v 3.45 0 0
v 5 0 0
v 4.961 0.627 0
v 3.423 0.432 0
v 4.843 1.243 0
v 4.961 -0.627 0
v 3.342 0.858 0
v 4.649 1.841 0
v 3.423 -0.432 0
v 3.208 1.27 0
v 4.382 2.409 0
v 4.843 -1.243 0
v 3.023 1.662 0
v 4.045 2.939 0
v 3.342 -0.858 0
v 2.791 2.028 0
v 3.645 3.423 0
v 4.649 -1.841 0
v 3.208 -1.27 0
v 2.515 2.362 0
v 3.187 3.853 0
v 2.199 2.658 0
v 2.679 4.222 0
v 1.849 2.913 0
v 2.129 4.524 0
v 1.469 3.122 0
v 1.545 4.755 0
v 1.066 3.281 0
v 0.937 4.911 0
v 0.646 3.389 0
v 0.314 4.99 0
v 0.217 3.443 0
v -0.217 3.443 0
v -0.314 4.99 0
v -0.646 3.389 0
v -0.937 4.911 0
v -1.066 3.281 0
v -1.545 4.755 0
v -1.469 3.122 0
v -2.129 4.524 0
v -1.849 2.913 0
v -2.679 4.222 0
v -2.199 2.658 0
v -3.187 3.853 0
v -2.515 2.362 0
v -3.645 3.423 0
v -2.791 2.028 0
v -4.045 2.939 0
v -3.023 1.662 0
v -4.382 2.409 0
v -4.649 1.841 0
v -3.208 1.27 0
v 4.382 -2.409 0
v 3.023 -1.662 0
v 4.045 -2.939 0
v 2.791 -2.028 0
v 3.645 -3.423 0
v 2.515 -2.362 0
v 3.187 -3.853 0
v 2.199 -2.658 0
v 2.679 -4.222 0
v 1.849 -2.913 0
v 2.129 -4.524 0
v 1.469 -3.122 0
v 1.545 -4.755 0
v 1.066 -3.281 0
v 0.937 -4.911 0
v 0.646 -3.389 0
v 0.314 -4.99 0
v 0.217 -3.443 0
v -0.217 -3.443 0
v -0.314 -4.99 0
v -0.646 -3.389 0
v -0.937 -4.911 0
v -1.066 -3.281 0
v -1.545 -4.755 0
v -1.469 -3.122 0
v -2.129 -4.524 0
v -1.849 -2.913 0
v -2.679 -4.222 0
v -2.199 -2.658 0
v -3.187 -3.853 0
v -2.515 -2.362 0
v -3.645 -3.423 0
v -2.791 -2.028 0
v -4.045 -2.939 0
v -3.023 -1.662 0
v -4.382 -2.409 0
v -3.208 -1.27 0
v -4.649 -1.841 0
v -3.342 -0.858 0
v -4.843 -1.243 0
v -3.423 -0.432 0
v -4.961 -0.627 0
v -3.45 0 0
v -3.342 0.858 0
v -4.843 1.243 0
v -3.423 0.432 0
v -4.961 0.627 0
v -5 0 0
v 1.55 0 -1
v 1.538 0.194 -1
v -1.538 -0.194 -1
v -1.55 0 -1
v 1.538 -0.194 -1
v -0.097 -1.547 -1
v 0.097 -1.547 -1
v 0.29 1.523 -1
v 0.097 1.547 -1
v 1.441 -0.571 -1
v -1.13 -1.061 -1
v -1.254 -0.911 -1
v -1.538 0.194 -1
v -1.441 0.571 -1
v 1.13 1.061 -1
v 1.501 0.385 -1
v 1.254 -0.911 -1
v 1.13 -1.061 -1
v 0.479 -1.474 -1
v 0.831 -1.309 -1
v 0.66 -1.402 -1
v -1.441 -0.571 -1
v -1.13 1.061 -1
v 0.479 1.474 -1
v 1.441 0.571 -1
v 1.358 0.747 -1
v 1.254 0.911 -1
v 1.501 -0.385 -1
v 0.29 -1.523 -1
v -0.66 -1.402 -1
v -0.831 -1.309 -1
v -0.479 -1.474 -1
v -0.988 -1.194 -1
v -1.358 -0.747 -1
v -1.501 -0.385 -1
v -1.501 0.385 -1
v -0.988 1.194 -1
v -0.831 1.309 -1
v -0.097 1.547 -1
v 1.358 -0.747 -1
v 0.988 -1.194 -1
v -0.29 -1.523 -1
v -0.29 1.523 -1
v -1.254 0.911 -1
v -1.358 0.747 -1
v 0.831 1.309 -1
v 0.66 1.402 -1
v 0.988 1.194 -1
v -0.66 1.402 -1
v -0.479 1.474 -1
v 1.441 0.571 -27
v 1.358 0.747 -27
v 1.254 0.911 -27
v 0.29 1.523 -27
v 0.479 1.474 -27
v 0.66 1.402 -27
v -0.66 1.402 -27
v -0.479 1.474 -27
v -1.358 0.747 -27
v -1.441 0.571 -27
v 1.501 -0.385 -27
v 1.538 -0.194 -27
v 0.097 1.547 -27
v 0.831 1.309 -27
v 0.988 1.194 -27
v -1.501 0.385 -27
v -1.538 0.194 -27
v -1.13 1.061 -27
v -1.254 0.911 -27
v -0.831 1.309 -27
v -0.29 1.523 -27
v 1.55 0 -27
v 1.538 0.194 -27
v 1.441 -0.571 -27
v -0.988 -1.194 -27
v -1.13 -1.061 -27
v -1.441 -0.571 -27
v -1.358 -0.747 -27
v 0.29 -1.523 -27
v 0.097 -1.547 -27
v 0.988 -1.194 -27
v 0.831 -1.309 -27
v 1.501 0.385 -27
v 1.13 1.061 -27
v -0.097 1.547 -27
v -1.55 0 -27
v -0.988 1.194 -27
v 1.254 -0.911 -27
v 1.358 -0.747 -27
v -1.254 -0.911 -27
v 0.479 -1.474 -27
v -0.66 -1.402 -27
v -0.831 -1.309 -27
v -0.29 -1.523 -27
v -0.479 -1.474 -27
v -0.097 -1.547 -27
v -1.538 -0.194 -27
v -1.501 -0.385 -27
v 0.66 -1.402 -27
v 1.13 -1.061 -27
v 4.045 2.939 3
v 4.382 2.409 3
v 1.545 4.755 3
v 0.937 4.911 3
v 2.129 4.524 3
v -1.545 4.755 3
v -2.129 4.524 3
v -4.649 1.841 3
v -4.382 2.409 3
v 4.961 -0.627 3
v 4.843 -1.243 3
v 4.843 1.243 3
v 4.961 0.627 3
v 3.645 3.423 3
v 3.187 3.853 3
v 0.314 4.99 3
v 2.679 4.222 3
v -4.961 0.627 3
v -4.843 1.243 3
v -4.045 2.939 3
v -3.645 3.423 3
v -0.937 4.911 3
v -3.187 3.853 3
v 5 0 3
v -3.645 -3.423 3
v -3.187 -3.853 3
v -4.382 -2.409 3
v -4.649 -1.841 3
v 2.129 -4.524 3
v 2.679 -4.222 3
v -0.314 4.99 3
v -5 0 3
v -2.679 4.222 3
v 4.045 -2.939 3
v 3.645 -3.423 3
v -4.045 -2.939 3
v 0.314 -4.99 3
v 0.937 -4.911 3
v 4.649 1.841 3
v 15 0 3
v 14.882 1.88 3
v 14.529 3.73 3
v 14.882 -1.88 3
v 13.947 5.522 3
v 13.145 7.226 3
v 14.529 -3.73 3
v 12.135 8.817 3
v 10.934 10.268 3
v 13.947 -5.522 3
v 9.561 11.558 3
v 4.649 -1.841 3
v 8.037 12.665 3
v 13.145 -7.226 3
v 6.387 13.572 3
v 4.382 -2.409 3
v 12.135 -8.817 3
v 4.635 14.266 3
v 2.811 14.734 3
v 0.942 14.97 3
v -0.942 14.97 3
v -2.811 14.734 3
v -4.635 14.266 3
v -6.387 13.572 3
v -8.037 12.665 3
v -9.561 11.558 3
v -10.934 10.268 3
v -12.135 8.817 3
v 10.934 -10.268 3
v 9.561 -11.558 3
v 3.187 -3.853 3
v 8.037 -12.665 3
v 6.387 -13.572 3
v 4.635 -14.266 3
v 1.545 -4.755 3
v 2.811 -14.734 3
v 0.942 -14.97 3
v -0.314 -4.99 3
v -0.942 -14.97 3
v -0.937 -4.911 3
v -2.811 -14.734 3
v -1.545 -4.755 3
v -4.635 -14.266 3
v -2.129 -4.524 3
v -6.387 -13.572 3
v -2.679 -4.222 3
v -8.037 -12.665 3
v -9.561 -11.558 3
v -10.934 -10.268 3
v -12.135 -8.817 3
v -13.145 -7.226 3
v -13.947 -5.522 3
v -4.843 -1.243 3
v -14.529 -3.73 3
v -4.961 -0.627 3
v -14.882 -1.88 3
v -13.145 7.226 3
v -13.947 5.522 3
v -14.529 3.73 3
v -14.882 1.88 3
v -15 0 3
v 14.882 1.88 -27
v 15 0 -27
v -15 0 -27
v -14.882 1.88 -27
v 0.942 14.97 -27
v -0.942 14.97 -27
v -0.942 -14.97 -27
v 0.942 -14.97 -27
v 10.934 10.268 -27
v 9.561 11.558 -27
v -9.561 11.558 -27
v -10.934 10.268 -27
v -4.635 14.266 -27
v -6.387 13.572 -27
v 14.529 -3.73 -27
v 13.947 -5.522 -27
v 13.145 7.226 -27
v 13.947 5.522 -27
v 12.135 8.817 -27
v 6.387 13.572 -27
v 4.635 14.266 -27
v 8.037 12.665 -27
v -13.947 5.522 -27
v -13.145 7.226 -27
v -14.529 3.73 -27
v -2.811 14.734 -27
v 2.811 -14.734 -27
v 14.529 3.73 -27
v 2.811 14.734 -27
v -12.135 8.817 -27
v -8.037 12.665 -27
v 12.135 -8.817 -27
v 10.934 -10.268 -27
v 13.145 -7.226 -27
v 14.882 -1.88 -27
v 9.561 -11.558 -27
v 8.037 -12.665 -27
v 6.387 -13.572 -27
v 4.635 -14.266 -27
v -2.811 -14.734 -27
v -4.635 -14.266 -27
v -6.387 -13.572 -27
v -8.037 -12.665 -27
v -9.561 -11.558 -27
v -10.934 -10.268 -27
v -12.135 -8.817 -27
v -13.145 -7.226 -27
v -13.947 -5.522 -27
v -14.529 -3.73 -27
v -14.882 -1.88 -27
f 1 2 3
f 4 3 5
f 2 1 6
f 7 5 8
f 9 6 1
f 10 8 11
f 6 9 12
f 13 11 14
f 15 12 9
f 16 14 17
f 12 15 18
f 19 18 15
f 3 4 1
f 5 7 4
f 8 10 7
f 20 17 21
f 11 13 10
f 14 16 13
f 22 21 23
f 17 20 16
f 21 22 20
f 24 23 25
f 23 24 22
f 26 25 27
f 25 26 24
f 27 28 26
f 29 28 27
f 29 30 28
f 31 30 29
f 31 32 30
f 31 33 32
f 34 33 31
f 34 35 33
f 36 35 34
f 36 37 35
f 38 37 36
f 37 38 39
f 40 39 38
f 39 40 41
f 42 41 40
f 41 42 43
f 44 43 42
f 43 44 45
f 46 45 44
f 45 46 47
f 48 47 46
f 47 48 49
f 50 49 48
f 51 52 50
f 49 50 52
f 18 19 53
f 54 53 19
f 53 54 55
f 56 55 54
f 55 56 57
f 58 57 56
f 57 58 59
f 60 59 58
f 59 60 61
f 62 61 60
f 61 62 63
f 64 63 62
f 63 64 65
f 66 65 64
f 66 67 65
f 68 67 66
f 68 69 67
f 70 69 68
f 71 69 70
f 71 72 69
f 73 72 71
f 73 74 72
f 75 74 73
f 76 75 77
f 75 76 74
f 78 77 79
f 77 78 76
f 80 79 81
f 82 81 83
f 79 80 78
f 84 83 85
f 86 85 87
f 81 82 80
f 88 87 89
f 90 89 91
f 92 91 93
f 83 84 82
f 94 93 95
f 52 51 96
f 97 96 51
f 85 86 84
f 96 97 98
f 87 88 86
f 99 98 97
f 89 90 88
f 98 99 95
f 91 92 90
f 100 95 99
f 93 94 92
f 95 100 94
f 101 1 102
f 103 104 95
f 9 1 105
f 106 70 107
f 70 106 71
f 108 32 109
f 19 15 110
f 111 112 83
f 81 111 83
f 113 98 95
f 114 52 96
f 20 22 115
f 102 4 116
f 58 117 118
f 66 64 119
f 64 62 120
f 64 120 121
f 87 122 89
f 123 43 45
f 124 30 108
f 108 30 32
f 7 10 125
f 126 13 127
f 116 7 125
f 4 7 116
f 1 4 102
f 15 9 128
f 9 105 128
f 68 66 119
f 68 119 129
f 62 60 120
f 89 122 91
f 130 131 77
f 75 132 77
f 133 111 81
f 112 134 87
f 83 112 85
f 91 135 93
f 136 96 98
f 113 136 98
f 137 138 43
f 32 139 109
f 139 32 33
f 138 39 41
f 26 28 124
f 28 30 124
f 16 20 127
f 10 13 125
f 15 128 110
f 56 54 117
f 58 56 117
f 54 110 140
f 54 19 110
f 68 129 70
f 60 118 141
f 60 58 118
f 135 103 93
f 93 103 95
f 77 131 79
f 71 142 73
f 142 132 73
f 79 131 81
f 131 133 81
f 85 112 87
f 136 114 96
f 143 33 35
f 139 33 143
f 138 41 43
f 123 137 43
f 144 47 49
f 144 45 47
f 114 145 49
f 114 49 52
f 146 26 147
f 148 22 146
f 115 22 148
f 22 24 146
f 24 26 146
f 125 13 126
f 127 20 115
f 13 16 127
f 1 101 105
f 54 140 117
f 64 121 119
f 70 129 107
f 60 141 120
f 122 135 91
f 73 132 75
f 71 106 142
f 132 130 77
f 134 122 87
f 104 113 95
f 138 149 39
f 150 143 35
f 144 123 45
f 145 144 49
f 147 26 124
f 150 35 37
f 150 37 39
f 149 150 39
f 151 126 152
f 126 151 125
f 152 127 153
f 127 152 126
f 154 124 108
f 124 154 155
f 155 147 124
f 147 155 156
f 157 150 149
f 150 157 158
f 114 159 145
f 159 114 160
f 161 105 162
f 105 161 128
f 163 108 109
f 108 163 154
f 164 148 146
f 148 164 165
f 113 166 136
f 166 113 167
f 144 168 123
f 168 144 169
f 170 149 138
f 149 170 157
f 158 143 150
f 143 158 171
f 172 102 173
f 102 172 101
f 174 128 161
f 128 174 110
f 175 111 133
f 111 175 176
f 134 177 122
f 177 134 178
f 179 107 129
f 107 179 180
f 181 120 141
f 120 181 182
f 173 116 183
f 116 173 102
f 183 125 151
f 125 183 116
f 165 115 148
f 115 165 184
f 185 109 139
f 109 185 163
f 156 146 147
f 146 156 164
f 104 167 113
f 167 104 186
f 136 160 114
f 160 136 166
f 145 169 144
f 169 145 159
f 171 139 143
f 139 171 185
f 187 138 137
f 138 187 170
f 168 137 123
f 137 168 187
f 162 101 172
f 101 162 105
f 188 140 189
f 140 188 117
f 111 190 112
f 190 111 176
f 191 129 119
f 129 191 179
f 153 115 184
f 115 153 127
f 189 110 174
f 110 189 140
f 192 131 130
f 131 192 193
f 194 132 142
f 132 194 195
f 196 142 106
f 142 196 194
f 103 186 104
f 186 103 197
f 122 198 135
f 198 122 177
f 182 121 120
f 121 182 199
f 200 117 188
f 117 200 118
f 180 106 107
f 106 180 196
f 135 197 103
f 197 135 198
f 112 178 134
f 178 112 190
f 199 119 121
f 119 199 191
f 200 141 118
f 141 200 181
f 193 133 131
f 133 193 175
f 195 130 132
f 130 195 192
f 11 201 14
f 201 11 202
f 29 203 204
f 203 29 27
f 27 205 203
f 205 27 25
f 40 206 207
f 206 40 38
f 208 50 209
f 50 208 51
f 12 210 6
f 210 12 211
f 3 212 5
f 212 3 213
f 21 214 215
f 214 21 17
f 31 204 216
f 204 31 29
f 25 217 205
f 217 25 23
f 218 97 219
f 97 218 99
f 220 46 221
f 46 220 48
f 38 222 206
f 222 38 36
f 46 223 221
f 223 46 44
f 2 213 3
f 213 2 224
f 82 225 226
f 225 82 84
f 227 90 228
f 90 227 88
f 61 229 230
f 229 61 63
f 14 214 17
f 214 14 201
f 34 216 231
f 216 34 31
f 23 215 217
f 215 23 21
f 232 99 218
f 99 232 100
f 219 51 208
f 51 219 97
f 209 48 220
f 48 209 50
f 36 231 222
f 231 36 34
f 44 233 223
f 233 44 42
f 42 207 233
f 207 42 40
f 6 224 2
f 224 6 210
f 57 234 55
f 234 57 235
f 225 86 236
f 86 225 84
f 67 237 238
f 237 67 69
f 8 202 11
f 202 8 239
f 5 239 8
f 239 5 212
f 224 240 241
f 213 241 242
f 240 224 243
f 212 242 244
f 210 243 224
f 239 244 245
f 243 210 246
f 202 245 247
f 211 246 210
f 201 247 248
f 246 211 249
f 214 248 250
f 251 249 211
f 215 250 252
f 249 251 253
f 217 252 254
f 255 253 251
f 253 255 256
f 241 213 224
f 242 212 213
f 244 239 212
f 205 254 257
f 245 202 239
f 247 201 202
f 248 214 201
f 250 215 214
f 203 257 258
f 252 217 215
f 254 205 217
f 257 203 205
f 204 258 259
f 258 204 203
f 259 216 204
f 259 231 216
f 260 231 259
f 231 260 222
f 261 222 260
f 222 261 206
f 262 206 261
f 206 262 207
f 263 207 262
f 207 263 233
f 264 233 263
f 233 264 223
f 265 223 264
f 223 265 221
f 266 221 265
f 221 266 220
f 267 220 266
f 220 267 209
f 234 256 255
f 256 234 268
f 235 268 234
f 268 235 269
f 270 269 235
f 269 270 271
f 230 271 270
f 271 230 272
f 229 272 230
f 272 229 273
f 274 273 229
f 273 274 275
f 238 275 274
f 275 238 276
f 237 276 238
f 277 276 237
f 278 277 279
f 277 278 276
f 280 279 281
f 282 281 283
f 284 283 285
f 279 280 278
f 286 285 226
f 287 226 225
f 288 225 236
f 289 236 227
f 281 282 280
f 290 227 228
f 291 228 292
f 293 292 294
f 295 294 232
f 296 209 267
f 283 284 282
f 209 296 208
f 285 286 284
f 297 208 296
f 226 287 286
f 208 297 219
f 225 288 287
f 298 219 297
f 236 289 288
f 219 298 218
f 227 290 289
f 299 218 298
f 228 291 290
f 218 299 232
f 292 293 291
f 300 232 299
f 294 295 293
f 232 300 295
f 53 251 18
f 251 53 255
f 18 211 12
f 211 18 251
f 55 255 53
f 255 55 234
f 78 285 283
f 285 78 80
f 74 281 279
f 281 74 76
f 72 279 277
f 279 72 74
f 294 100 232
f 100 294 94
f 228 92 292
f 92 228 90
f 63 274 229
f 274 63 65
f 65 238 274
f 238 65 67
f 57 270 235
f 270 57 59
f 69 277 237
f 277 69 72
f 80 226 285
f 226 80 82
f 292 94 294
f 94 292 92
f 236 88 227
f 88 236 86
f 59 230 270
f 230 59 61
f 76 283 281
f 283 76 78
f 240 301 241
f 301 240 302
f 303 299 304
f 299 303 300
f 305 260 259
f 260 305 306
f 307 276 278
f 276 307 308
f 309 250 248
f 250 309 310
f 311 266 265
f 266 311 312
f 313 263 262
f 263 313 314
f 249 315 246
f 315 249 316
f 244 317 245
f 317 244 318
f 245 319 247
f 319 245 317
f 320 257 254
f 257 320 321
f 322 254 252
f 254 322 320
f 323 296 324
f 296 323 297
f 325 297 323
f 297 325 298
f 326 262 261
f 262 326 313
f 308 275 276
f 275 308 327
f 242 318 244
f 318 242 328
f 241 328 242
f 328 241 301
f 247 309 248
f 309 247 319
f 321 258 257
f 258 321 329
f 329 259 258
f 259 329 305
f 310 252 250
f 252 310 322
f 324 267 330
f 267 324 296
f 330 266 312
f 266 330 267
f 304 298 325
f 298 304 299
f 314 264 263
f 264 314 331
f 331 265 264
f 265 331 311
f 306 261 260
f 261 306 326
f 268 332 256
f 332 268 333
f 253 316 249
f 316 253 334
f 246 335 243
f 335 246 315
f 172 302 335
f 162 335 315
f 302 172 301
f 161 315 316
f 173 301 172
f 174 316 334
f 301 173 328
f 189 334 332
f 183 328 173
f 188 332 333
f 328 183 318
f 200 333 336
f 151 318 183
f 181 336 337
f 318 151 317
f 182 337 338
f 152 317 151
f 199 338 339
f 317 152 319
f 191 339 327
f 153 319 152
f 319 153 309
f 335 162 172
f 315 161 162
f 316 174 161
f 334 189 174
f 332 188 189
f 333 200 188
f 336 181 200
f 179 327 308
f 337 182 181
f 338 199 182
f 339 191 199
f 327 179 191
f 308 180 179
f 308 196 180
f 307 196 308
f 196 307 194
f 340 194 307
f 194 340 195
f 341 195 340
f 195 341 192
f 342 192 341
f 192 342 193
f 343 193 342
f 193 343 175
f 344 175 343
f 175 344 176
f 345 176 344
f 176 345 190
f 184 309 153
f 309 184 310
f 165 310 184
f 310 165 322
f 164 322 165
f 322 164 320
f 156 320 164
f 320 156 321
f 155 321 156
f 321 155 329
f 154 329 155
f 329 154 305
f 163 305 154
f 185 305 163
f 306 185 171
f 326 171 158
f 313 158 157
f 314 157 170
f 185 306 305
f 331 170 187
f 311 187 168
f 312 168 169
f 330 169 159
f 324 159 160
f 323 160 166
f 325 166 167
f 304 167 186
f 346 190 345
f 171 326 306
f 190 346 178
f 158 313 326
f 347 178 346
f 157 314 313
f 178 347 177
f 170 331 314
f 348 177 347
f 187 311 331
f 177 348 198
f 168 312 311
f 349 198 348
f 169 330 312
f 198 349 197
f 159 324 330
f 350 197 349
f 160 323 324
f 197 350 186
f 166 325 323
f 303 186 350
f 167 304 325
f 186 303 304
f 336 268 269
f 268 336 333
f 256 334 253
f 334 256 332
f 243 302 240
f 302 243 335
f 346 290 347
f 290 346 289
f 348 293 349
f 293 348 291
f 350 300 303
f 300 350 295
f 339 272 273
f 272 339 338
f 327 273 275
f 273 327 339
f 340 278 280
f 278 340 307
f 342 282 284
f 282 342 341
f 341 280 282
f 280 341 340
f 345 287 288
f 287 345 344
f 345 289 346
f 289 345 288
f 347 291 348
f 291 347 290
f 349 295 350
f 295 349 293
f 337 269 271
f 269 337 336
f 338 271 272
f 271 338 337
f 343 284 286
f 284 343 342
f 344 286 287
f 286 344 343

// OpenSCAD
$fn = 50;

difference() {
	union() {
		translate(v = [0, 0, -27.0]) {
			cylinder(h = 30, r = 15.0);
		}
	}
	union() {
		translate(v = [0, 0, 0]) {
			rotate(a = [0, 0, 0]) {
				difference() {
					union() {
						translate(v = [0, 0, -30.0]) {
							cylinder(h = 30, r = 1.25);
						}
						translate(v = [0, 0, -1.0]) {
							cylinder(h = 1.0, r1 = 1.55, r2 = 3.45);
						}
						translate(v = [0, 0, -30.0]) {
							cylinder(h = 30, r = 1.55);
						}
						translate(v = [0, 0, -30.0]) {
							cylinder(h = 30, r = 1.25);
						}
					}
					union();
				}
			}
		}
		#cylinder(h = 3, r = 5.0);
	}
}
